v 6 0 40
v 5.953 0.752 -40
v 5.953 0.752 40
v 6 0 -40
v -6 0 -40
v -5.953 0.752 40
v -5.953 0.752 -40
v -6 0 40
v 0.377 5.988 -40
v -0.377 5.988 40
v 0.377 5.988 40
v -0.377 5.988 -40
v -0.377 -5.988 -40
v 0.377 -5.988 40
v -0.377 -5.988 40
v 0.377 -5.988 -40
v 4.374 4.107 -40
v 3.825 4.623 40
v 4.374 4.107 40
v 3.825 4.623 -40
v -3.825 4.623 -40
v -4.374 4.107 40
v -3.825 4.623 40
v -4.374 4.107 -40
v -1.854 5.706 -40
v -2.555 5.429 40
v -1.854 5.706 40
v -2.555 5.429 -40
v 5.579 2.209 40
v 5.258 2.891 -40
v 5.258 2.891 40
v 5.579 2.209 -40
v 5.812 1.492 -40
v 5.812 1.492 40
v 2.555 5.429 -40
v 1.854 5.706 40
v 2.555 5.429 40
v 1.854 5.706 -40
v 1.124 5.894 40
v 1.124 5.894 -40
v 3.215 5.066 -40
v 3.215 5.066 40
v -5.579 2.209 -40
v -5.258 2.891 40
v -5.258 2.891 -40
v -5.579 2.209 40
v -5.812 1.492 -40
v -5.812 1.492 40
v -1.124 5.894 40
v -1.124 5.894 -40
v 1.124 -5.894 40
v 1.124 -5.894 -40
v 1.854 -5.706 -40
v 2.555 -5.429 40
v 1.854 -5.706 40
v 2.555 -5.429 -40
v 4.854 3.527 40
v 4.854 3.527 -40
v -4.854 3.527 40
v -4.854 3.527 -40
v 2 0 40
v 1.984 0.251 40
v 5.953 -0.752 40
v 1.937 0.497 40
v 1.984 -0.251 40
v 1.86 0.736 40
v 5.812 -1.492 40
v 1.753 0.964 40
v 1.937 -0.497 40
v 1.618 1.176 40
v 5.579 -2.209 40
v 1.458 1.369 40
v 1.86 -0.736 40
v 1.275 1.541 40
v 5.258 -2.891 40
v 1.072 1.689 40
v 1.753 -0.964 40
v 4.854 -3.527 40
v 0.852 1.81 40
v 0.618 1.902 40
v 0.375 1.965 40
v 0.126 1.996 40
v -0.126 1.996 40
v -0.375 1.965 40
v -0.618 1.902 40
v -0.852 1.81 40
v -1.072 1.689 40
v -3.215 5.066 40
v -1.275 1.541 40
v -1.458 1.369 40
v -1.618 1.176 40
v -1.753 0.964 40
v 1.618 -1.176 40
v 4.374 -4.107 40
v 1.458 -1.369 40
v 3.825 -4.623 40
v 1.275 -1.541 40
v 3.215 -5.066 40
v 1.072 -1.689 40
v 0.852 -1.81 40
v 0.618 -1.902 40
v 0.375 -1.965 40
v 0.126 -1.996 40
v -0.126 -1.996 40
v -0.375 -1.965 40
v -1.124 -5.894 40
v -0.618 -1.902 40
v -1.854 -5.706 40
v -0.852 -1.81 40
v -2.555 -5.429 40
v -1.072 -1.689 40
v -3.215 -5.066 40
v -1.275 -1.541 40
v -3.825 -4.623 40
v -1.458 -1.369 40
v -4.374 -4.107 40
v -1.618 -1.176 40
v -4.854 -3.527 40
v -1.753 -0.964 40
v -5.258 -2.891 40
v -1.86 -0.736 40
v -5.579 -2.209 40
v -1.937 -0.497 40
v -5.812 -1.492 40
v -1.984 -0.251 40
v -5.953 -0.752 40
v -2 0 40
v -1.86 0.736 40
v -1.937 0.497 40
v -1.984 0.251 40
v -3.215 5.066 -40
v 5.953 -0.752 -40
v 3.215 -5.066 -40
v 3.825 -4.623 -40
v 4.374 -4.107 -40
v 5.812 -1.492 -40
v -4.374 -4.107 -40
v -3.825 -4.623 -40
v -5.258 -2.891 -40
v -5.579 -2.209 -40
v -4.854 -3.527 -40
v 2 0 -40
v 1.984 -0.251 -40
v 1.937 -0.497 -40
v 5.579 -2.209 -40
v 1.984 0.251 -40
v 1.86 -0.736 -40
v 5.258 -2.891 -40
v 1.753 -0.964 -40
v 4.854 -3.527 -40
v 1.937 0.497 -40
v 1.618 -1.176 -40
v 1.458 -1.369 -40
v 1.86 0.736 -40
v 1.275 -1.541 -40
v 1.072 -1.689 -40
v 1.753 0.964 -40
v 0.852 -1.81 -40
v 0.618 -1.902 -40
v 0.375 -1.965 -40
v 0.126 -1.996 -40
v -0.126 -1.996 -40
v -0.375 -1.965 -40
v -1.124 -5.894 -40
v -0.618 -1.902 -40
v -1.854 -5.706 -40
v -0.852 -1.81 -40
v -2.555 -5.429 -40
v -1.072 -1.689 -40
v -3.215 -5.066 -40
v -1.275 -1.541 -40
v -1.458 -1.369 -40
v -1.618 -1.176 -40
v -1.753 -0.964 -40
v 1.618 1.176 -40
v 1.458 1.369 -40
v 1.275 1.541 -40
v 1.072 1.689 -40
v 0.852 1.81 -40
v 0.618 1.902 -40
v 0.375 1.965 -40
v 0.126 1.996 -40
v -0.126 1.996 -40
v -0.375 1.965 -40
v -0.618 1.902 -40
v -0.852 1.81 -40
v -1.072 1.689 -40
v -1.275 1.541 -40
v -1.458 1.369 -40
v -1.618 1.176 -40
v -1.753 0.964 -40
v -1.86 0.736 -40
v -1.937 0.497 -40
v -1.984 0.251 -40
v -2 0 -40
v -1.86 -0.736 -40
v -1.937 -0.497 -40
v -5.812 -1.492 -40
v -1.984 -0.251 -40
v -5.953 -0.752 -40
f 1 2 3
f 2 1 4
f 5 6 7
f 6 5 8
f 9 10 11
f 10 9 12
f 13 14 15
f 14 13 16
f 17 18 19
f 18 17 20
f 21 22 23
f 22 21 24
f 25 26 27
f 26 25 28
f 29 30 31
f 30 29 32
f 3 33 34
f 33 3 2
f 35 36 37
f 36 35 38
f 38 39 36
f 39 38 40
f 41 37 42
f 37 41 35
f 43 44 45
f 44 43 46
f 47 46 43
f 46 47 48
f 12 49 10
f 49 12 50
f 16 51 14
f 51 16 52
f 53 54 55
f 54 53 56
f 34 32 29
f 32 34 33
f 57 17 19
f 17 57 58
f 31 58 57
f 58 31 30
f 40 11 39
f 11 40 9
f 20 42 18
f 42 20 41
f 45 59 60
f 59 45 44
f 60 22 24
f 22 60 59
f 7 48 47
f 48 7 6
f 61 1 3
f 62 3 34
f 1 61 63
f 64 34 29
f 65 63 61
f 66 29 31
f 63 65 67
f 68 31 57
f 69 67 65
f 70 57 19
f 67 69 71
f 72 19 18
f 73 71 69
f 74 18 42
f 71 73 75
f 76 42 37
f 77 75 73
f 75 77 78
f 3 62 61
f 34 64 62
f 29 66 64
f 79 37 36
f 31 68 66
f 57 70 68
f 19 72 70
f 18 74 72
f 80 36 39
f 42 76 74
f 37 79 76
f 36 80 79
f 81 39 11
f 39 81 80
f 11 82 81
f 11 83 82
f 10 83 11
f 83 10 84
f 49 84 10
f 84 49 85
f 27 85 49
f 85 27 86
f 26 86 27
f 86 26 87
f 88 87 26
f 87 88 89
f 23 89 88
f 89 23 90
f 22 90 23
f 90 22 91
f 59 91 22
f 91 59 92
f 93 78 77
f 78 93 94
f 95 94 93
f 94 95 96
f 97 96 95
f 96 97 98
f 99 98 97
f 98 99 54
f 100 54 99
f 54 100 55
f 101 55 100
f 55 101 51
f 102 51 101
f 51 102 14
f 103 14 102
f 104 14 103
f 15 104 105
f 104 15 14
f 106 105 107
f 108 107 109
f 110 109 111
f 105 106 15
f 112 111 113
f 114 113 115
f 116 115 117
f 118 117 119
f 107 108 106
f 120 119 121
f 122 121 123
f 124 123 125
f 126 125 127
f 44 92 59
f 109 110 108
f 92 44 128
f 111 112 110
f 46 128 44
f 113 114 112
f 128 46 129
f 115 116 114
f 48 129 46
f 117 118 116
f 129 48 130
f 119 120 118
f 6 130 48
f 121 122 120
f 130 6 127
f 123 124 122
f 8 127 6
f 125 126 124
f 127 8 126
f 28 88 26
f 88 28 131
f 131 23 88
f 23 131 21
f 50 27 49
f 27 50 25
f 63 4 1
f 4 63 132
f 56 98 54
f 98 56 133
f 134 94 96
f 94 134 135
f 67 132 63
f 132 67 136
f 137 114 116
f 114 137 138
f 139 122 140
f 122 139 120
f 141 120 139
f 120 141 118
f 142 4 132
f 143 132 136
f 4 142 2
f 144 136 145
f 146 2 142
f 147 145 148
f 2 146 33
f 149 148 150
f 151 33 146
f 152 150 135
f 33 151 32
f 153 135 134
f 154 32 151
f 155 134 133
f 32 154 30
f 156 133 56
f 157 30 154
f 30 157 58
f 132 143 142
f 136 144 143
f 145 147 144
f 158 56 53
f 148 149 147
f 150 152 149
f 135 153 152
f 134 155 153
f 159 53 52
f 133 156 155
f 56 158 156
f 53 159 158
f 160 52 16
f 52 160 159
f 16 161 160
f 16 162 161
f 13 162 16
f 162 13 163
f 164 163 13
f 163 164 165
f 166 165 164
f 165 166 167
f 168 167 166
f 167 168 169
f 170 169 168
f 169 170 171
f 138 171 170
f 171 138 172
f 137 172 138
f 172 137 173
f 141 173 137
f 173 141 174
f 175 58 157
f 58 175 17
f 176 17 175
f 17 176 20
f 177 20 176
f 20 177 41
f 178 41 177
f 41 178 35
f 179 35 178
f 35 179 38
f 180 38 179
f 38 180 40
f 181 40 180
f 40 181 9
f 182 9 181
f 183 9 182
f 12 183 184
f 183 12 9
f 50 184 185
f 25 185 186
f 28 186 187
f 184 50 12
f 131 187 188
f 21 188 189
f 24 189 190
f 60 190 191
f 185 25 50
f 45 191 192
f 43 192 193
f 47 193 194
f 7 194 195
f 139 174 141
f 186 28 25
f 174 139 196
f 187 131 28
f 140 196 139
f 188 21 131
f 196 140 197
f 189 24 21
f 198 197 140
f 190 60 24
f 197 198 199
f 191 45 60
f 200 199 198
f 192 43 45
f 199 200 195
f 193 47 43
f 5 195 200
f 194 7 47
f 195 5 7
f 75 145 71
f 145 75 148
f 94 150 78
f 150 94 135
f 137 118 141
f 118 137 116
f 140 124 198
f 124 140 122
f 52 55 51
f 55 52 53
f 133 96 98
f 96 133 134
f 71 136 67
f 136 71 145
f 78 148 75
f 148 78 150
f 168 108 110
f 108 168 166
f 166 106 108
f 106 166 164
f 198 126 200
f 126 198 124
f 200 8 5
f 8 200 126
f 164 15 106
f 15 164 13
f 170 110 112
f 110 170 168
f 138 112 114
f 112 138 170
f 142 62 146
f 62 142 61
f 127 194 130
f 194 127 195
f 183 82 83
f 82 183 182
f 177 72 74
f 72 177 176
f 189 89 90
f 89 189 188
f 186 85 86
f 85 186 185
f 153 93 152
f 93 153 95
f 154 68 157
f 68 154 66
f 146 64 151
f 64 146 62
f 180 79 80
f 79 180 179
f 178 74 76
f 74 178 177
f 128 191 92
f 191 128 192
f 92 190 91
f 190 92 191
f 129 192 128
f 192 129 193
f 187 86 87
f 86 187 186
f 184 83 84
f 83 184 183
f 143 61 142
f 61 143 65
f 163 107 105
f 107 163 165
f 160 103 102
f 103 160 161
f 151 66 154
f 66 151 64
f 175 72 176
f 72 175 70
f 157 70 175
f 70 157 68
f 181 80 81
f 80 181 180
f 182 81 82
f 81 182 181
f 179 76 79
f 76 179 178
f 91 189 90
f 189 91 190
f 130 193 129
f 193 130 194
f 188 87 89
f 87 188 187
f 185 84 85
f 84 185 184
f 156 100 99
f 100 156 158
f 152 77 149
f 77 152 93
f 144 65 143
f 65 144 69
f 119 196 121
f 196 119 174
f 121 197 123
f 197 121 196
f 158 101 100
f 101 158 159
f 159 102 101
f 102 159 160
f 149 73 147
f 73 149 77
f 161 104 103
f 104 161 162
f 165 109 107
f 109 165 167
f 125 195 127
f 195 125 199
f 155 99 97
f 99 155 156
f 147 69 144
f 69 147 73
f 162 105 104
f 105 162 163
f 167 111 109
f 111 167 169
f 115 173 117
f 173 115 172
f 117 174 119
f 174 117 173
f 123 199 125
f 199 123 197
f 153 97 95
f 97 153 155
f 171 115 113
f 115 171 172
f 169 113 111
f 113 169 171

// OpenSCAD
$fn = 50;


difference() {
	union() {
		translate(v = [0, 0, -40.0000000000]) {
			cylinder(h = 80, r = 6.0000000000);
		}
	}
	union() {
		translate(v = [0, 0, -100.0000000000]) {
			cylinder(h = 200, r = 2);
		}
	}
}
